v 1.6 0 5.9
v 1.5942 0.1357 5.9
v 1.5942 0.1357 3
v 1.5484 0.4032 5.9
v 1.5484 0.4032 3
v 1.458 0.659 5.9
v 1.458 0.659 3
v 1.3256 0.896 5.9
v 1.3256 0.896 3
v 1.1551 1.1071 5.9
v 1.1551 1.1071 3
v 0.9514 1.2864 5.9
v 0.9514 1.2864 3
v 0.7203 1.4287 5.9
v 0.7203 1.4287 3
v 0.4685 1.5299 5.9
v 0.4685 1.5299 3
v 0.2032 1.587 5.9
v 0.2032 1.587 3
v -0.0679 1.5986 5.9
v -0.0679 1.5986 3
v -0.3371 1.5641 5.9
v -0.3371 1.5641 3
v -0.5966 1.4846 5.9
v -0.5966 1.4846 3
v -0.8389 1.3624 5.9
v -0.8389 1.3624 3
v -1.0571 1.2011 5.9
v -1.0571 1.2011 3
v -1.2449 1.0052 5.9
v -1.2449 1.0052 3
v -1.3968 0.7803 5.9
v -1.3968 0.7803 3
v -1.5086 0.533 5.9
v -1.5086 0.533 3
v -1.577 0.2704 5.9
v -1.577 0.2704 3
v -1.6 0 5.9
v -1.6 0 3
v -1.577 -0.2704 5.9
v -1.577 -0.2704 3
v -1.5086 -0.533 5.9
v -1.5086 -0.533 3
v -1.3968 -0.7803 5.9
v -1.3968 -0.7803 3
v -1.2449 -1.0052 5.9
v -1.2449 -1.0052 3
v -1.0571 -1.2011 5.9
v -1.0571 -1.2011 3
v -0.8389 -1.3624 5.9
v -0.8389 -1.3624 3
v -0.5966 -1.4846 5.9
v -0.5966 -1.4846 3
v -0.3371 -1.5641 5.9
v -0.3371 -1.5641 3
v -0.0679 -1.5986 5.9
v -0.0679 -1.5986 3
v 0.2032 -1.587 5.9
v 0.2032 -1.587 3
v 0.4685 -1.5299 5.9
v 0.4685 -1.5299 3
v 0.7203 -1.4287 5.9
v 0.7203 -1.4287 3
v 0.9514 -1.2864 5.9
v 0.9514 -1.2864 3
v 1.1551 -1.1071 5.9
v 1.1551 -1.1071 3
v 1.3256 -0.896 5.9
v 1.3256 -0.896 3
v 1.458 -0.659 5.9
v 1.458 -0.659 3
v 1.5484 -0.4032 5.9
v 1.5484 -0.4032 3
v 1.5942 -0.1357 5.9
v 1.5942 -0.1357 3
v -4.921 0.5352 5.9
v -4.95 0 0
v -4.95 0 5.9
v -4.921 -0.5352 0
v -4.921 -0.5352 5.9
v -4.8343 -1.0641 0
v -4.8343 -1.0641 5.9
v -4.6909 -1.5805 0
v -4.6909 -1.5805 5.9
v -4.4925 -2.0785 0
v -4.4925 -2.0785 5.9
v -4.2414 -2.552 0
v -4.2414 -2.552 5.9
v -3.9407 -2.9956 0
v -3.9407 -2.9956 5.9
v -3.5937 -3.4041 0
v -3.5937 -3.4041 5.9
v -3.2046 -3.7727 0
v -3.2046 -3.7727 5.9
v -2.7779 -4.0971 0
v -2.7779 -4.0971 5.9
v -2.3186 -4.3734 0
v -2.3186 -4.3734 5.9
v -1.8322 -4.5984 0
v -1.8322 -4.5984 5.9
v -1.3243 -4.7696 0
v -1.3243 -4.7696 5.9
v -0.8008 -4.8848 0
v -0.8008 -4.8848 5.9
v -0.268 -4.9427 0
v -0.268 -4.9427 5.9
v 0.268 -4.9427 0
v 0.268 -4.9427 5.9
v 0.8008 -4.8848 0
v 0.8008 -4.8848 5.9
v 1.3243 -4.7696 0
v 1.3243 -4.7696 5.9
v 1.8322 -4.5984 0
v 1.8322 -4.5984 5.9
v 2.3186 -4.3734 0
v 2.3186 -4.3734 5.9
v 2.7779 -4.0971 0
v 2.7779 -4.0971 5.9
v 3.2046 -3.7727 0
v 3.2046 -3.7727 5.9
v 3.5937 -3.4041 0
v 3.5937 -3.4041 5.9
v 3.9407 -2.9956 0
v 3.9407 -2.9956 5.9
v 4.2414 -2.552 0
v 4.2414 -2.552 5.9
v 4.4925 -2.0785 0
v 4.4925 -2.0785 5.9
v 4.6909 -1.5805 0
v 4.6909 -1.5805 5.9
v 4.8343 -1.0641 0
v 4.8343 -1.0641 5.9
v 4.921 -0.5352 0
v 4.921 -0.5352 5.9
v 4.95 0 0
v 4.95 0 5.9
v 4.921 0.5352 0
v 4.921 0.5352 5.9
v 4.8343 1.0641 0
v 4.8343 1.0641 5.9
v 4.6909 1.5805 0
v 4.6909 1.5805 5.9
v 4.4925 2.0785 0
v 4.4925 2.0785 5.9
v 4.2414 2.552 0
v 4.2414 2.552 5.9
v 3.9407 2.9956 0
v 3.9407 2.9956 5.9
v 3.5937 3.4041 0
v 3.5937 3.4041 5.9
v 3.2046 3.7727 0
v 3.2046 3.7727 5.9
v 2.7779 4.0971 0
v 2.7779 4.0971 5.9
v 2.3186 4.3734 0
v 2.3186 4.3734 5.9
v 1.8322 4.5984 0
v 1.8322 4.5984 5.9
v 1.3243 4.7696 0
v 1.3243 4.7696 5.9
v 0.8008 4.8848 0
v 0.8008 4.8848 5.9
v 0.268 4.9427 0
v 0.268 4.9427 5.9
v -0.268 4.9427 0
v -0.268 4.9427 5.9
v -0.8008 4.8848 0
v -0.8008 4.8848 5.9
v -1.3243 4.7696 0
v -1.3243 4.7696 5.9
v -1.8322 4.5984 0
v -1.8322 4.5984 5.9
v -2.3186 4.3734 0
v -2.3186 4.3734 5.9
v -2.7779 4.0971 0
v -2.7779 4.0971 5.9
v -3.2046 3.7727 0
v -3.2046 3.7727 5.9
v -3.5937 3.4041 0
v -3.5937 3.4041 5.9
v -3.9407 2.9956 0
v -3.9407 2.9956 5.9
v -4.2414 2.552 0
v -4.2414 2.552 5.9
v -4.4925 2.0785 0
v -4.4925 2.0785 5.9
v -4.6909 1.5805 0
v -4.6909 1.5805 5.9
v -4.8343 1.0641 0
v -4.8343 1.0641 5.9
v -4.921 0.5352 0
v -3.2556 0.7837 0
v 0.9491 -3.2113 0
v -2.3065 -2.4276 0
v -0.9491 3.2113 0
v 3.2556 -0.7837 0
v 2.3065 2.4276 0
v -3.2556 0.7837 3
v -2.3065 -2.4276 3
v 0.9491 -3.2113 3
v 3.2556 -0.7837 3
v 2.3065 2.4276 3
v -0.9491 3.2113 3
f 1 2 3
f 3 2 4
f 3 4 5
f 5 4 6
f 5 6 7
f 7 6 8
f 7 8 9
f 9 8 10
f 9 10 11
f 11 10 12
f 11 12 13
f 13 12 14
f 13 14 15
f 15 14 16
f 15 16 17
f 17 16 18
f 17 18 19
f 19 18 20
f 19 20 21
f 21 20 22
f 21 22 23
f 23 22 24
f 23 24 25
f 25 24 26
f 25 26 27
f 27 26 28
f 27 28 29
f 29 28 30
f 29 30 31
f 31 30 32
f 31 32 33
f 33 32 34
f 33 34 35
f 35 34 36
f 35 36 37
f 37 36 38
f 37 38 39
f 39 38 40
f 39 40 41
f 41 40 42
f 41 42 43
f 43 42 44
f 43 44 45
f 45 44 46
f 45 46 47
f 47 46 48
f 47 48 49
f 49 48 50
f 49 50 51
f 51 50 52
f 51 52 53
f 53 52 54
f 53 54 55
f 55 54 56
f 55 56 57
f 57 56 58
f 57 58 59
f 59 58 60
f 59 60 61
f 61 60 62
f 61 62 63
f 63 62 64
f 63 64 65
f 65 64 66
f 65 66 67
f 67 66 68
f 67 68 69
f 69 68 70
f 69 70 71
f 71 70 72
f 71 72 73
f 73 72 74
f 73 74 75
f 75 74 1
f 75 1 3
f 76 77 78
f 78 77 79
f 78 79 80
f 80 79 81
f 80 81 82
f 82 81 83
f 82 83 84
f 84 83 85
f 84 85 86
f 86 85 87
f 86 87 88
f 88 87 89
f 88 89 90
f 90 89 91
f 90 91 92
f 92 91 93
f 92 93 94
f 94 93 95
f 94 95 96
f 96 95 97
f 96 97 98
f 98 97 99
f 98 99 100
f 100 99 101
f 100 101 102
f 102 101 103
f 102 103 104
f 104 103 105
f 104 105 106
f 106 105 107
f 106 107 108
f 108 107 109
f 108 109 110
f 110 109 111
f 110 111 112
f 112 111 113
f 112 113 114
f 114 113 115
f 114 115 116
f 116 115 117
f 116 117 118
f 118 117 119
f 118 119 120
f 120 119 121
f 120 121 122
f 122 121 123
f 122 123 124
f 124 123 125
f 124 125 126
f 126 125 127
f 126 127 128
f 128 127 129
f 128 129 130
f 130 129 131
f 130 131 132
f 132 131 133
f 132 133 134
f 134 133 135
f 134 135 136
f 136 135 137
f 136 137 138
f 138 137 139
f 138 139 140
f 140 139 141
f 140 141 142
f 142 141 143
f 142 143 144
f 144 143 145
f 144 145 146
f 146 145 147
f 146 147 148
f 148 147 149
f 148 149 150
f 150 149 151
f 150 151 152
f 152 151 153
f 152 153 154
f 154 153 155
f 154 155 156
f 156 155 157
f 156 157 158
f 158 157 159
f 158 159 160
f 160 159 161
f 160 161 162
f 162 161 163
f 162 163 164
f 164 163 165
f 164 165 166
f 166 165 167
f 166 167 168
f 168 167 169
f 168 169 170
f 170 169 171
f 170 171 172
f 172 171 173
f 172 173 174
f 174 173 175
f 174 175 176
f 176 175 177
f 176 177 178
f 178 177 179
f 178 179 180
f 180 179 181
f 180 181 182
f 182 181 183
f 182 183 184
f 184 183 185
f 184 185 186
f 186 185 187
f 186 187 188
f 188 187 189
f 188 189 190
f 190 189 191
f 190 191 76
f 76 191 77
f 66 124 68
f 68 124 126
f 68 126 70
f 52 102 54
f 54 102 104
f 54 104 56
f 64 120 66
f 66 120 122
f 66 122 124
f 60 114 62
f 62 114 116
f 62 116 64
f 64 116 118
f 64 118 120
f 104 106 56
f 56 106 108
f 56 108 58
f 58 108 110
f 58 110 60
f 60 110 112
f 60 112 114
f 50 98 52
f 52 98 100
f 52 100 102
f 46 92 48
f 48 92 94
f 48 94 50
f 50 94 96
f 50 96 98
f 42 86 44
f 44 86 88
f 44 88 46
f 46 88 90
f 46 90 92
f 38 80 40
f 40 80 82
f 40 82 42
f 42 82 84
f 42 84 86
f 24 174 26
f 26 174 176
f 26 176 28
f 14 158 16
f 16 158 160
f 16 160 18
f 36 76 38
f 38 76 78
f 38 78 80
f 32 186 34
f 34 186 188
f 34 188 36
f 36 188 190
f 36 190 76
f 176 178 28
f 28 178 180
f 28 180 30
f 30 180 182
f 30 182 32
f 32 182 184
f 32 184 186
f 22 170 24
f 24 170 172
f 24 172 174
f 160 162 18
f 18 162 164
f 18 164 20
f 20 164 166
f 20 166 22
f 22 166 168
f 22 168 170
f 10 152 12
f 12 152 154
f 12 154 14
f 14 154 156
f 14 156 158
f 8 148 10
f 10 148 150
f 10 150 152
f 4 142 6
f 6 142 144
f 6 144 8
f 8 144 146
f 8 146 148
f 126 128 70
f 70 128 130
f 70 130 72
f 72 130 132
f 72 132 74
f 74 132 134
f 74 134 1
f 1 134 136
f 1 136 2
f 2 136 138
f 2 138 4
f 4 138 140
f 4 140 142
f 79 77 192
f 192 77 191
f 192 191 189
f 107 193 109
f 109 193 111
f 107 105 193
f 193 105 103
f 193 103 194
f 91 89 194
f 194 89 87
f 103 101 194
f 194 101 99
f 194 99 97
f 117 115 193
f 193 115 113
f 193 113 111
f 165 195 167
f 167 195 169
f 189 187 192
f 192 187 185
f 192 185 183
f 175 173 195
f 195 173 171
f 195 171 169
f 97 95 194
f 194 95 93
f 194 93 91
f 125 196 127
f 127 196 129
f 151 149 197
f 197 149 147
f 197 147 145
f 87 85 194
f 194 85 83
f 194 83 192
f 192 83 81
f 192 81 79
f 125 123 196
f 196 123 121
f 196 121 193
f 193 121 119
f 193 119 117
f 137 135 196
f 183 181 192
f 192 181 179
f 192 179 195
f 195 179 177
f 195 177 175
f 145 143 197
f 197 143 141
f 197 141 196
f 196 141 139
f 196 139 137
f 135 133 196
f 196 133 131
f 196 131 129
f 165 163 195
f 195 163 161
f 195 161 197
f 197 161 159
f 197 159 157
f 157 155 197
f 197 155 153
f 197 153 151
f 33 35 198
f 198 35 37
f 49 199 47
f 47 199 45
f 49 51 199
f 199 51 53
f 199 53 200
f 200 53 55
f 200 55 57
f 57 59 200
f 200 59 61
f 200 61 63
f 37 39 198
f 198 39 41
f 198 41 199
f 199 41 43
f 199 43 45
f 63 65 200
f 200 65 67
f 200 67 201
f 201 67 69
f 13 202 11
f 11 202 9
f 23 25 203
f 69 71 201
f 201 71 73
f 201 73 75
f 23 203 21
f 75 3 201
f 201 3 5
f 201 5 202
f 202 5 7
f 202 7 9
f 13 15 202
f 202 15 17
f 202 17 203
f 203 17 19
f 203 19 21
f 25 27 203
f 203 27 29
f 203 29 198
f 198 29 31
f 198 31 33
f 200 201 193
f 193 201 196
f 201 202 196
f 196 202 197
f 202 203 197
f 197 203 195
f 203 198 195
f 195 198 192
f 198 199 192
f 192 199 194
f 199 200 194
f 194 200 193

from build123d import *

# Parameters (mm, degrees)
ESQUISSE1_R             = 4.95
BOSS_EXTRU_1_DEPTH      = 5.9
ESQUISSE2_R             = 1.6
ENL_V_MAT_EXTRU_1_DEPTH = 5.9
ENL_V_MAT_EXTRU_2_DEPTH = 3


with BuildPart() as part:
    # Esquisse1 → Boss.-Extru.1 (new body)
    with BuildSketch(Plane.XY):
        Circle(ESQUISSE1_R)
    extrude(amount=BOSS_EXTRU_1_DEPTH)

    # Esquisse2 → Enlèv. mat.-Extru.1 (cut)
    with BuildSketch(Plane(origin=(0, 0, 0), x_dir=(-1, 0, 0), z_dir=(0, 0, -1))):
        Circle(ESQUISSE2_R)
    extrude(amount=-ENL_V_MAT_EXTRU_1_DEPTH, mode=Mode.SUBTRACT)

    # Esquisse3 → Enlèv. mat.-Extru.2 (cut)
    with BuildSketch(Plane(origin=(0, 0, 0), x_dir=(-1, 0, 0), z_dir=(0, 0, -1))):
        Polygon((-0.949092992, -3.211316837), (2.306535464, -2.42759706), (3.255628456, 0.783719777), (0.949092992, 3.211316837), (-2.306535464, 2.42759706), (-3.255628456, -0.783719777), align=None)
    extrude(amount=-ENL_V_MAT_EXTRU_2_DEPTH, mode=Mode.SUBTRACT)


solid = part.part
